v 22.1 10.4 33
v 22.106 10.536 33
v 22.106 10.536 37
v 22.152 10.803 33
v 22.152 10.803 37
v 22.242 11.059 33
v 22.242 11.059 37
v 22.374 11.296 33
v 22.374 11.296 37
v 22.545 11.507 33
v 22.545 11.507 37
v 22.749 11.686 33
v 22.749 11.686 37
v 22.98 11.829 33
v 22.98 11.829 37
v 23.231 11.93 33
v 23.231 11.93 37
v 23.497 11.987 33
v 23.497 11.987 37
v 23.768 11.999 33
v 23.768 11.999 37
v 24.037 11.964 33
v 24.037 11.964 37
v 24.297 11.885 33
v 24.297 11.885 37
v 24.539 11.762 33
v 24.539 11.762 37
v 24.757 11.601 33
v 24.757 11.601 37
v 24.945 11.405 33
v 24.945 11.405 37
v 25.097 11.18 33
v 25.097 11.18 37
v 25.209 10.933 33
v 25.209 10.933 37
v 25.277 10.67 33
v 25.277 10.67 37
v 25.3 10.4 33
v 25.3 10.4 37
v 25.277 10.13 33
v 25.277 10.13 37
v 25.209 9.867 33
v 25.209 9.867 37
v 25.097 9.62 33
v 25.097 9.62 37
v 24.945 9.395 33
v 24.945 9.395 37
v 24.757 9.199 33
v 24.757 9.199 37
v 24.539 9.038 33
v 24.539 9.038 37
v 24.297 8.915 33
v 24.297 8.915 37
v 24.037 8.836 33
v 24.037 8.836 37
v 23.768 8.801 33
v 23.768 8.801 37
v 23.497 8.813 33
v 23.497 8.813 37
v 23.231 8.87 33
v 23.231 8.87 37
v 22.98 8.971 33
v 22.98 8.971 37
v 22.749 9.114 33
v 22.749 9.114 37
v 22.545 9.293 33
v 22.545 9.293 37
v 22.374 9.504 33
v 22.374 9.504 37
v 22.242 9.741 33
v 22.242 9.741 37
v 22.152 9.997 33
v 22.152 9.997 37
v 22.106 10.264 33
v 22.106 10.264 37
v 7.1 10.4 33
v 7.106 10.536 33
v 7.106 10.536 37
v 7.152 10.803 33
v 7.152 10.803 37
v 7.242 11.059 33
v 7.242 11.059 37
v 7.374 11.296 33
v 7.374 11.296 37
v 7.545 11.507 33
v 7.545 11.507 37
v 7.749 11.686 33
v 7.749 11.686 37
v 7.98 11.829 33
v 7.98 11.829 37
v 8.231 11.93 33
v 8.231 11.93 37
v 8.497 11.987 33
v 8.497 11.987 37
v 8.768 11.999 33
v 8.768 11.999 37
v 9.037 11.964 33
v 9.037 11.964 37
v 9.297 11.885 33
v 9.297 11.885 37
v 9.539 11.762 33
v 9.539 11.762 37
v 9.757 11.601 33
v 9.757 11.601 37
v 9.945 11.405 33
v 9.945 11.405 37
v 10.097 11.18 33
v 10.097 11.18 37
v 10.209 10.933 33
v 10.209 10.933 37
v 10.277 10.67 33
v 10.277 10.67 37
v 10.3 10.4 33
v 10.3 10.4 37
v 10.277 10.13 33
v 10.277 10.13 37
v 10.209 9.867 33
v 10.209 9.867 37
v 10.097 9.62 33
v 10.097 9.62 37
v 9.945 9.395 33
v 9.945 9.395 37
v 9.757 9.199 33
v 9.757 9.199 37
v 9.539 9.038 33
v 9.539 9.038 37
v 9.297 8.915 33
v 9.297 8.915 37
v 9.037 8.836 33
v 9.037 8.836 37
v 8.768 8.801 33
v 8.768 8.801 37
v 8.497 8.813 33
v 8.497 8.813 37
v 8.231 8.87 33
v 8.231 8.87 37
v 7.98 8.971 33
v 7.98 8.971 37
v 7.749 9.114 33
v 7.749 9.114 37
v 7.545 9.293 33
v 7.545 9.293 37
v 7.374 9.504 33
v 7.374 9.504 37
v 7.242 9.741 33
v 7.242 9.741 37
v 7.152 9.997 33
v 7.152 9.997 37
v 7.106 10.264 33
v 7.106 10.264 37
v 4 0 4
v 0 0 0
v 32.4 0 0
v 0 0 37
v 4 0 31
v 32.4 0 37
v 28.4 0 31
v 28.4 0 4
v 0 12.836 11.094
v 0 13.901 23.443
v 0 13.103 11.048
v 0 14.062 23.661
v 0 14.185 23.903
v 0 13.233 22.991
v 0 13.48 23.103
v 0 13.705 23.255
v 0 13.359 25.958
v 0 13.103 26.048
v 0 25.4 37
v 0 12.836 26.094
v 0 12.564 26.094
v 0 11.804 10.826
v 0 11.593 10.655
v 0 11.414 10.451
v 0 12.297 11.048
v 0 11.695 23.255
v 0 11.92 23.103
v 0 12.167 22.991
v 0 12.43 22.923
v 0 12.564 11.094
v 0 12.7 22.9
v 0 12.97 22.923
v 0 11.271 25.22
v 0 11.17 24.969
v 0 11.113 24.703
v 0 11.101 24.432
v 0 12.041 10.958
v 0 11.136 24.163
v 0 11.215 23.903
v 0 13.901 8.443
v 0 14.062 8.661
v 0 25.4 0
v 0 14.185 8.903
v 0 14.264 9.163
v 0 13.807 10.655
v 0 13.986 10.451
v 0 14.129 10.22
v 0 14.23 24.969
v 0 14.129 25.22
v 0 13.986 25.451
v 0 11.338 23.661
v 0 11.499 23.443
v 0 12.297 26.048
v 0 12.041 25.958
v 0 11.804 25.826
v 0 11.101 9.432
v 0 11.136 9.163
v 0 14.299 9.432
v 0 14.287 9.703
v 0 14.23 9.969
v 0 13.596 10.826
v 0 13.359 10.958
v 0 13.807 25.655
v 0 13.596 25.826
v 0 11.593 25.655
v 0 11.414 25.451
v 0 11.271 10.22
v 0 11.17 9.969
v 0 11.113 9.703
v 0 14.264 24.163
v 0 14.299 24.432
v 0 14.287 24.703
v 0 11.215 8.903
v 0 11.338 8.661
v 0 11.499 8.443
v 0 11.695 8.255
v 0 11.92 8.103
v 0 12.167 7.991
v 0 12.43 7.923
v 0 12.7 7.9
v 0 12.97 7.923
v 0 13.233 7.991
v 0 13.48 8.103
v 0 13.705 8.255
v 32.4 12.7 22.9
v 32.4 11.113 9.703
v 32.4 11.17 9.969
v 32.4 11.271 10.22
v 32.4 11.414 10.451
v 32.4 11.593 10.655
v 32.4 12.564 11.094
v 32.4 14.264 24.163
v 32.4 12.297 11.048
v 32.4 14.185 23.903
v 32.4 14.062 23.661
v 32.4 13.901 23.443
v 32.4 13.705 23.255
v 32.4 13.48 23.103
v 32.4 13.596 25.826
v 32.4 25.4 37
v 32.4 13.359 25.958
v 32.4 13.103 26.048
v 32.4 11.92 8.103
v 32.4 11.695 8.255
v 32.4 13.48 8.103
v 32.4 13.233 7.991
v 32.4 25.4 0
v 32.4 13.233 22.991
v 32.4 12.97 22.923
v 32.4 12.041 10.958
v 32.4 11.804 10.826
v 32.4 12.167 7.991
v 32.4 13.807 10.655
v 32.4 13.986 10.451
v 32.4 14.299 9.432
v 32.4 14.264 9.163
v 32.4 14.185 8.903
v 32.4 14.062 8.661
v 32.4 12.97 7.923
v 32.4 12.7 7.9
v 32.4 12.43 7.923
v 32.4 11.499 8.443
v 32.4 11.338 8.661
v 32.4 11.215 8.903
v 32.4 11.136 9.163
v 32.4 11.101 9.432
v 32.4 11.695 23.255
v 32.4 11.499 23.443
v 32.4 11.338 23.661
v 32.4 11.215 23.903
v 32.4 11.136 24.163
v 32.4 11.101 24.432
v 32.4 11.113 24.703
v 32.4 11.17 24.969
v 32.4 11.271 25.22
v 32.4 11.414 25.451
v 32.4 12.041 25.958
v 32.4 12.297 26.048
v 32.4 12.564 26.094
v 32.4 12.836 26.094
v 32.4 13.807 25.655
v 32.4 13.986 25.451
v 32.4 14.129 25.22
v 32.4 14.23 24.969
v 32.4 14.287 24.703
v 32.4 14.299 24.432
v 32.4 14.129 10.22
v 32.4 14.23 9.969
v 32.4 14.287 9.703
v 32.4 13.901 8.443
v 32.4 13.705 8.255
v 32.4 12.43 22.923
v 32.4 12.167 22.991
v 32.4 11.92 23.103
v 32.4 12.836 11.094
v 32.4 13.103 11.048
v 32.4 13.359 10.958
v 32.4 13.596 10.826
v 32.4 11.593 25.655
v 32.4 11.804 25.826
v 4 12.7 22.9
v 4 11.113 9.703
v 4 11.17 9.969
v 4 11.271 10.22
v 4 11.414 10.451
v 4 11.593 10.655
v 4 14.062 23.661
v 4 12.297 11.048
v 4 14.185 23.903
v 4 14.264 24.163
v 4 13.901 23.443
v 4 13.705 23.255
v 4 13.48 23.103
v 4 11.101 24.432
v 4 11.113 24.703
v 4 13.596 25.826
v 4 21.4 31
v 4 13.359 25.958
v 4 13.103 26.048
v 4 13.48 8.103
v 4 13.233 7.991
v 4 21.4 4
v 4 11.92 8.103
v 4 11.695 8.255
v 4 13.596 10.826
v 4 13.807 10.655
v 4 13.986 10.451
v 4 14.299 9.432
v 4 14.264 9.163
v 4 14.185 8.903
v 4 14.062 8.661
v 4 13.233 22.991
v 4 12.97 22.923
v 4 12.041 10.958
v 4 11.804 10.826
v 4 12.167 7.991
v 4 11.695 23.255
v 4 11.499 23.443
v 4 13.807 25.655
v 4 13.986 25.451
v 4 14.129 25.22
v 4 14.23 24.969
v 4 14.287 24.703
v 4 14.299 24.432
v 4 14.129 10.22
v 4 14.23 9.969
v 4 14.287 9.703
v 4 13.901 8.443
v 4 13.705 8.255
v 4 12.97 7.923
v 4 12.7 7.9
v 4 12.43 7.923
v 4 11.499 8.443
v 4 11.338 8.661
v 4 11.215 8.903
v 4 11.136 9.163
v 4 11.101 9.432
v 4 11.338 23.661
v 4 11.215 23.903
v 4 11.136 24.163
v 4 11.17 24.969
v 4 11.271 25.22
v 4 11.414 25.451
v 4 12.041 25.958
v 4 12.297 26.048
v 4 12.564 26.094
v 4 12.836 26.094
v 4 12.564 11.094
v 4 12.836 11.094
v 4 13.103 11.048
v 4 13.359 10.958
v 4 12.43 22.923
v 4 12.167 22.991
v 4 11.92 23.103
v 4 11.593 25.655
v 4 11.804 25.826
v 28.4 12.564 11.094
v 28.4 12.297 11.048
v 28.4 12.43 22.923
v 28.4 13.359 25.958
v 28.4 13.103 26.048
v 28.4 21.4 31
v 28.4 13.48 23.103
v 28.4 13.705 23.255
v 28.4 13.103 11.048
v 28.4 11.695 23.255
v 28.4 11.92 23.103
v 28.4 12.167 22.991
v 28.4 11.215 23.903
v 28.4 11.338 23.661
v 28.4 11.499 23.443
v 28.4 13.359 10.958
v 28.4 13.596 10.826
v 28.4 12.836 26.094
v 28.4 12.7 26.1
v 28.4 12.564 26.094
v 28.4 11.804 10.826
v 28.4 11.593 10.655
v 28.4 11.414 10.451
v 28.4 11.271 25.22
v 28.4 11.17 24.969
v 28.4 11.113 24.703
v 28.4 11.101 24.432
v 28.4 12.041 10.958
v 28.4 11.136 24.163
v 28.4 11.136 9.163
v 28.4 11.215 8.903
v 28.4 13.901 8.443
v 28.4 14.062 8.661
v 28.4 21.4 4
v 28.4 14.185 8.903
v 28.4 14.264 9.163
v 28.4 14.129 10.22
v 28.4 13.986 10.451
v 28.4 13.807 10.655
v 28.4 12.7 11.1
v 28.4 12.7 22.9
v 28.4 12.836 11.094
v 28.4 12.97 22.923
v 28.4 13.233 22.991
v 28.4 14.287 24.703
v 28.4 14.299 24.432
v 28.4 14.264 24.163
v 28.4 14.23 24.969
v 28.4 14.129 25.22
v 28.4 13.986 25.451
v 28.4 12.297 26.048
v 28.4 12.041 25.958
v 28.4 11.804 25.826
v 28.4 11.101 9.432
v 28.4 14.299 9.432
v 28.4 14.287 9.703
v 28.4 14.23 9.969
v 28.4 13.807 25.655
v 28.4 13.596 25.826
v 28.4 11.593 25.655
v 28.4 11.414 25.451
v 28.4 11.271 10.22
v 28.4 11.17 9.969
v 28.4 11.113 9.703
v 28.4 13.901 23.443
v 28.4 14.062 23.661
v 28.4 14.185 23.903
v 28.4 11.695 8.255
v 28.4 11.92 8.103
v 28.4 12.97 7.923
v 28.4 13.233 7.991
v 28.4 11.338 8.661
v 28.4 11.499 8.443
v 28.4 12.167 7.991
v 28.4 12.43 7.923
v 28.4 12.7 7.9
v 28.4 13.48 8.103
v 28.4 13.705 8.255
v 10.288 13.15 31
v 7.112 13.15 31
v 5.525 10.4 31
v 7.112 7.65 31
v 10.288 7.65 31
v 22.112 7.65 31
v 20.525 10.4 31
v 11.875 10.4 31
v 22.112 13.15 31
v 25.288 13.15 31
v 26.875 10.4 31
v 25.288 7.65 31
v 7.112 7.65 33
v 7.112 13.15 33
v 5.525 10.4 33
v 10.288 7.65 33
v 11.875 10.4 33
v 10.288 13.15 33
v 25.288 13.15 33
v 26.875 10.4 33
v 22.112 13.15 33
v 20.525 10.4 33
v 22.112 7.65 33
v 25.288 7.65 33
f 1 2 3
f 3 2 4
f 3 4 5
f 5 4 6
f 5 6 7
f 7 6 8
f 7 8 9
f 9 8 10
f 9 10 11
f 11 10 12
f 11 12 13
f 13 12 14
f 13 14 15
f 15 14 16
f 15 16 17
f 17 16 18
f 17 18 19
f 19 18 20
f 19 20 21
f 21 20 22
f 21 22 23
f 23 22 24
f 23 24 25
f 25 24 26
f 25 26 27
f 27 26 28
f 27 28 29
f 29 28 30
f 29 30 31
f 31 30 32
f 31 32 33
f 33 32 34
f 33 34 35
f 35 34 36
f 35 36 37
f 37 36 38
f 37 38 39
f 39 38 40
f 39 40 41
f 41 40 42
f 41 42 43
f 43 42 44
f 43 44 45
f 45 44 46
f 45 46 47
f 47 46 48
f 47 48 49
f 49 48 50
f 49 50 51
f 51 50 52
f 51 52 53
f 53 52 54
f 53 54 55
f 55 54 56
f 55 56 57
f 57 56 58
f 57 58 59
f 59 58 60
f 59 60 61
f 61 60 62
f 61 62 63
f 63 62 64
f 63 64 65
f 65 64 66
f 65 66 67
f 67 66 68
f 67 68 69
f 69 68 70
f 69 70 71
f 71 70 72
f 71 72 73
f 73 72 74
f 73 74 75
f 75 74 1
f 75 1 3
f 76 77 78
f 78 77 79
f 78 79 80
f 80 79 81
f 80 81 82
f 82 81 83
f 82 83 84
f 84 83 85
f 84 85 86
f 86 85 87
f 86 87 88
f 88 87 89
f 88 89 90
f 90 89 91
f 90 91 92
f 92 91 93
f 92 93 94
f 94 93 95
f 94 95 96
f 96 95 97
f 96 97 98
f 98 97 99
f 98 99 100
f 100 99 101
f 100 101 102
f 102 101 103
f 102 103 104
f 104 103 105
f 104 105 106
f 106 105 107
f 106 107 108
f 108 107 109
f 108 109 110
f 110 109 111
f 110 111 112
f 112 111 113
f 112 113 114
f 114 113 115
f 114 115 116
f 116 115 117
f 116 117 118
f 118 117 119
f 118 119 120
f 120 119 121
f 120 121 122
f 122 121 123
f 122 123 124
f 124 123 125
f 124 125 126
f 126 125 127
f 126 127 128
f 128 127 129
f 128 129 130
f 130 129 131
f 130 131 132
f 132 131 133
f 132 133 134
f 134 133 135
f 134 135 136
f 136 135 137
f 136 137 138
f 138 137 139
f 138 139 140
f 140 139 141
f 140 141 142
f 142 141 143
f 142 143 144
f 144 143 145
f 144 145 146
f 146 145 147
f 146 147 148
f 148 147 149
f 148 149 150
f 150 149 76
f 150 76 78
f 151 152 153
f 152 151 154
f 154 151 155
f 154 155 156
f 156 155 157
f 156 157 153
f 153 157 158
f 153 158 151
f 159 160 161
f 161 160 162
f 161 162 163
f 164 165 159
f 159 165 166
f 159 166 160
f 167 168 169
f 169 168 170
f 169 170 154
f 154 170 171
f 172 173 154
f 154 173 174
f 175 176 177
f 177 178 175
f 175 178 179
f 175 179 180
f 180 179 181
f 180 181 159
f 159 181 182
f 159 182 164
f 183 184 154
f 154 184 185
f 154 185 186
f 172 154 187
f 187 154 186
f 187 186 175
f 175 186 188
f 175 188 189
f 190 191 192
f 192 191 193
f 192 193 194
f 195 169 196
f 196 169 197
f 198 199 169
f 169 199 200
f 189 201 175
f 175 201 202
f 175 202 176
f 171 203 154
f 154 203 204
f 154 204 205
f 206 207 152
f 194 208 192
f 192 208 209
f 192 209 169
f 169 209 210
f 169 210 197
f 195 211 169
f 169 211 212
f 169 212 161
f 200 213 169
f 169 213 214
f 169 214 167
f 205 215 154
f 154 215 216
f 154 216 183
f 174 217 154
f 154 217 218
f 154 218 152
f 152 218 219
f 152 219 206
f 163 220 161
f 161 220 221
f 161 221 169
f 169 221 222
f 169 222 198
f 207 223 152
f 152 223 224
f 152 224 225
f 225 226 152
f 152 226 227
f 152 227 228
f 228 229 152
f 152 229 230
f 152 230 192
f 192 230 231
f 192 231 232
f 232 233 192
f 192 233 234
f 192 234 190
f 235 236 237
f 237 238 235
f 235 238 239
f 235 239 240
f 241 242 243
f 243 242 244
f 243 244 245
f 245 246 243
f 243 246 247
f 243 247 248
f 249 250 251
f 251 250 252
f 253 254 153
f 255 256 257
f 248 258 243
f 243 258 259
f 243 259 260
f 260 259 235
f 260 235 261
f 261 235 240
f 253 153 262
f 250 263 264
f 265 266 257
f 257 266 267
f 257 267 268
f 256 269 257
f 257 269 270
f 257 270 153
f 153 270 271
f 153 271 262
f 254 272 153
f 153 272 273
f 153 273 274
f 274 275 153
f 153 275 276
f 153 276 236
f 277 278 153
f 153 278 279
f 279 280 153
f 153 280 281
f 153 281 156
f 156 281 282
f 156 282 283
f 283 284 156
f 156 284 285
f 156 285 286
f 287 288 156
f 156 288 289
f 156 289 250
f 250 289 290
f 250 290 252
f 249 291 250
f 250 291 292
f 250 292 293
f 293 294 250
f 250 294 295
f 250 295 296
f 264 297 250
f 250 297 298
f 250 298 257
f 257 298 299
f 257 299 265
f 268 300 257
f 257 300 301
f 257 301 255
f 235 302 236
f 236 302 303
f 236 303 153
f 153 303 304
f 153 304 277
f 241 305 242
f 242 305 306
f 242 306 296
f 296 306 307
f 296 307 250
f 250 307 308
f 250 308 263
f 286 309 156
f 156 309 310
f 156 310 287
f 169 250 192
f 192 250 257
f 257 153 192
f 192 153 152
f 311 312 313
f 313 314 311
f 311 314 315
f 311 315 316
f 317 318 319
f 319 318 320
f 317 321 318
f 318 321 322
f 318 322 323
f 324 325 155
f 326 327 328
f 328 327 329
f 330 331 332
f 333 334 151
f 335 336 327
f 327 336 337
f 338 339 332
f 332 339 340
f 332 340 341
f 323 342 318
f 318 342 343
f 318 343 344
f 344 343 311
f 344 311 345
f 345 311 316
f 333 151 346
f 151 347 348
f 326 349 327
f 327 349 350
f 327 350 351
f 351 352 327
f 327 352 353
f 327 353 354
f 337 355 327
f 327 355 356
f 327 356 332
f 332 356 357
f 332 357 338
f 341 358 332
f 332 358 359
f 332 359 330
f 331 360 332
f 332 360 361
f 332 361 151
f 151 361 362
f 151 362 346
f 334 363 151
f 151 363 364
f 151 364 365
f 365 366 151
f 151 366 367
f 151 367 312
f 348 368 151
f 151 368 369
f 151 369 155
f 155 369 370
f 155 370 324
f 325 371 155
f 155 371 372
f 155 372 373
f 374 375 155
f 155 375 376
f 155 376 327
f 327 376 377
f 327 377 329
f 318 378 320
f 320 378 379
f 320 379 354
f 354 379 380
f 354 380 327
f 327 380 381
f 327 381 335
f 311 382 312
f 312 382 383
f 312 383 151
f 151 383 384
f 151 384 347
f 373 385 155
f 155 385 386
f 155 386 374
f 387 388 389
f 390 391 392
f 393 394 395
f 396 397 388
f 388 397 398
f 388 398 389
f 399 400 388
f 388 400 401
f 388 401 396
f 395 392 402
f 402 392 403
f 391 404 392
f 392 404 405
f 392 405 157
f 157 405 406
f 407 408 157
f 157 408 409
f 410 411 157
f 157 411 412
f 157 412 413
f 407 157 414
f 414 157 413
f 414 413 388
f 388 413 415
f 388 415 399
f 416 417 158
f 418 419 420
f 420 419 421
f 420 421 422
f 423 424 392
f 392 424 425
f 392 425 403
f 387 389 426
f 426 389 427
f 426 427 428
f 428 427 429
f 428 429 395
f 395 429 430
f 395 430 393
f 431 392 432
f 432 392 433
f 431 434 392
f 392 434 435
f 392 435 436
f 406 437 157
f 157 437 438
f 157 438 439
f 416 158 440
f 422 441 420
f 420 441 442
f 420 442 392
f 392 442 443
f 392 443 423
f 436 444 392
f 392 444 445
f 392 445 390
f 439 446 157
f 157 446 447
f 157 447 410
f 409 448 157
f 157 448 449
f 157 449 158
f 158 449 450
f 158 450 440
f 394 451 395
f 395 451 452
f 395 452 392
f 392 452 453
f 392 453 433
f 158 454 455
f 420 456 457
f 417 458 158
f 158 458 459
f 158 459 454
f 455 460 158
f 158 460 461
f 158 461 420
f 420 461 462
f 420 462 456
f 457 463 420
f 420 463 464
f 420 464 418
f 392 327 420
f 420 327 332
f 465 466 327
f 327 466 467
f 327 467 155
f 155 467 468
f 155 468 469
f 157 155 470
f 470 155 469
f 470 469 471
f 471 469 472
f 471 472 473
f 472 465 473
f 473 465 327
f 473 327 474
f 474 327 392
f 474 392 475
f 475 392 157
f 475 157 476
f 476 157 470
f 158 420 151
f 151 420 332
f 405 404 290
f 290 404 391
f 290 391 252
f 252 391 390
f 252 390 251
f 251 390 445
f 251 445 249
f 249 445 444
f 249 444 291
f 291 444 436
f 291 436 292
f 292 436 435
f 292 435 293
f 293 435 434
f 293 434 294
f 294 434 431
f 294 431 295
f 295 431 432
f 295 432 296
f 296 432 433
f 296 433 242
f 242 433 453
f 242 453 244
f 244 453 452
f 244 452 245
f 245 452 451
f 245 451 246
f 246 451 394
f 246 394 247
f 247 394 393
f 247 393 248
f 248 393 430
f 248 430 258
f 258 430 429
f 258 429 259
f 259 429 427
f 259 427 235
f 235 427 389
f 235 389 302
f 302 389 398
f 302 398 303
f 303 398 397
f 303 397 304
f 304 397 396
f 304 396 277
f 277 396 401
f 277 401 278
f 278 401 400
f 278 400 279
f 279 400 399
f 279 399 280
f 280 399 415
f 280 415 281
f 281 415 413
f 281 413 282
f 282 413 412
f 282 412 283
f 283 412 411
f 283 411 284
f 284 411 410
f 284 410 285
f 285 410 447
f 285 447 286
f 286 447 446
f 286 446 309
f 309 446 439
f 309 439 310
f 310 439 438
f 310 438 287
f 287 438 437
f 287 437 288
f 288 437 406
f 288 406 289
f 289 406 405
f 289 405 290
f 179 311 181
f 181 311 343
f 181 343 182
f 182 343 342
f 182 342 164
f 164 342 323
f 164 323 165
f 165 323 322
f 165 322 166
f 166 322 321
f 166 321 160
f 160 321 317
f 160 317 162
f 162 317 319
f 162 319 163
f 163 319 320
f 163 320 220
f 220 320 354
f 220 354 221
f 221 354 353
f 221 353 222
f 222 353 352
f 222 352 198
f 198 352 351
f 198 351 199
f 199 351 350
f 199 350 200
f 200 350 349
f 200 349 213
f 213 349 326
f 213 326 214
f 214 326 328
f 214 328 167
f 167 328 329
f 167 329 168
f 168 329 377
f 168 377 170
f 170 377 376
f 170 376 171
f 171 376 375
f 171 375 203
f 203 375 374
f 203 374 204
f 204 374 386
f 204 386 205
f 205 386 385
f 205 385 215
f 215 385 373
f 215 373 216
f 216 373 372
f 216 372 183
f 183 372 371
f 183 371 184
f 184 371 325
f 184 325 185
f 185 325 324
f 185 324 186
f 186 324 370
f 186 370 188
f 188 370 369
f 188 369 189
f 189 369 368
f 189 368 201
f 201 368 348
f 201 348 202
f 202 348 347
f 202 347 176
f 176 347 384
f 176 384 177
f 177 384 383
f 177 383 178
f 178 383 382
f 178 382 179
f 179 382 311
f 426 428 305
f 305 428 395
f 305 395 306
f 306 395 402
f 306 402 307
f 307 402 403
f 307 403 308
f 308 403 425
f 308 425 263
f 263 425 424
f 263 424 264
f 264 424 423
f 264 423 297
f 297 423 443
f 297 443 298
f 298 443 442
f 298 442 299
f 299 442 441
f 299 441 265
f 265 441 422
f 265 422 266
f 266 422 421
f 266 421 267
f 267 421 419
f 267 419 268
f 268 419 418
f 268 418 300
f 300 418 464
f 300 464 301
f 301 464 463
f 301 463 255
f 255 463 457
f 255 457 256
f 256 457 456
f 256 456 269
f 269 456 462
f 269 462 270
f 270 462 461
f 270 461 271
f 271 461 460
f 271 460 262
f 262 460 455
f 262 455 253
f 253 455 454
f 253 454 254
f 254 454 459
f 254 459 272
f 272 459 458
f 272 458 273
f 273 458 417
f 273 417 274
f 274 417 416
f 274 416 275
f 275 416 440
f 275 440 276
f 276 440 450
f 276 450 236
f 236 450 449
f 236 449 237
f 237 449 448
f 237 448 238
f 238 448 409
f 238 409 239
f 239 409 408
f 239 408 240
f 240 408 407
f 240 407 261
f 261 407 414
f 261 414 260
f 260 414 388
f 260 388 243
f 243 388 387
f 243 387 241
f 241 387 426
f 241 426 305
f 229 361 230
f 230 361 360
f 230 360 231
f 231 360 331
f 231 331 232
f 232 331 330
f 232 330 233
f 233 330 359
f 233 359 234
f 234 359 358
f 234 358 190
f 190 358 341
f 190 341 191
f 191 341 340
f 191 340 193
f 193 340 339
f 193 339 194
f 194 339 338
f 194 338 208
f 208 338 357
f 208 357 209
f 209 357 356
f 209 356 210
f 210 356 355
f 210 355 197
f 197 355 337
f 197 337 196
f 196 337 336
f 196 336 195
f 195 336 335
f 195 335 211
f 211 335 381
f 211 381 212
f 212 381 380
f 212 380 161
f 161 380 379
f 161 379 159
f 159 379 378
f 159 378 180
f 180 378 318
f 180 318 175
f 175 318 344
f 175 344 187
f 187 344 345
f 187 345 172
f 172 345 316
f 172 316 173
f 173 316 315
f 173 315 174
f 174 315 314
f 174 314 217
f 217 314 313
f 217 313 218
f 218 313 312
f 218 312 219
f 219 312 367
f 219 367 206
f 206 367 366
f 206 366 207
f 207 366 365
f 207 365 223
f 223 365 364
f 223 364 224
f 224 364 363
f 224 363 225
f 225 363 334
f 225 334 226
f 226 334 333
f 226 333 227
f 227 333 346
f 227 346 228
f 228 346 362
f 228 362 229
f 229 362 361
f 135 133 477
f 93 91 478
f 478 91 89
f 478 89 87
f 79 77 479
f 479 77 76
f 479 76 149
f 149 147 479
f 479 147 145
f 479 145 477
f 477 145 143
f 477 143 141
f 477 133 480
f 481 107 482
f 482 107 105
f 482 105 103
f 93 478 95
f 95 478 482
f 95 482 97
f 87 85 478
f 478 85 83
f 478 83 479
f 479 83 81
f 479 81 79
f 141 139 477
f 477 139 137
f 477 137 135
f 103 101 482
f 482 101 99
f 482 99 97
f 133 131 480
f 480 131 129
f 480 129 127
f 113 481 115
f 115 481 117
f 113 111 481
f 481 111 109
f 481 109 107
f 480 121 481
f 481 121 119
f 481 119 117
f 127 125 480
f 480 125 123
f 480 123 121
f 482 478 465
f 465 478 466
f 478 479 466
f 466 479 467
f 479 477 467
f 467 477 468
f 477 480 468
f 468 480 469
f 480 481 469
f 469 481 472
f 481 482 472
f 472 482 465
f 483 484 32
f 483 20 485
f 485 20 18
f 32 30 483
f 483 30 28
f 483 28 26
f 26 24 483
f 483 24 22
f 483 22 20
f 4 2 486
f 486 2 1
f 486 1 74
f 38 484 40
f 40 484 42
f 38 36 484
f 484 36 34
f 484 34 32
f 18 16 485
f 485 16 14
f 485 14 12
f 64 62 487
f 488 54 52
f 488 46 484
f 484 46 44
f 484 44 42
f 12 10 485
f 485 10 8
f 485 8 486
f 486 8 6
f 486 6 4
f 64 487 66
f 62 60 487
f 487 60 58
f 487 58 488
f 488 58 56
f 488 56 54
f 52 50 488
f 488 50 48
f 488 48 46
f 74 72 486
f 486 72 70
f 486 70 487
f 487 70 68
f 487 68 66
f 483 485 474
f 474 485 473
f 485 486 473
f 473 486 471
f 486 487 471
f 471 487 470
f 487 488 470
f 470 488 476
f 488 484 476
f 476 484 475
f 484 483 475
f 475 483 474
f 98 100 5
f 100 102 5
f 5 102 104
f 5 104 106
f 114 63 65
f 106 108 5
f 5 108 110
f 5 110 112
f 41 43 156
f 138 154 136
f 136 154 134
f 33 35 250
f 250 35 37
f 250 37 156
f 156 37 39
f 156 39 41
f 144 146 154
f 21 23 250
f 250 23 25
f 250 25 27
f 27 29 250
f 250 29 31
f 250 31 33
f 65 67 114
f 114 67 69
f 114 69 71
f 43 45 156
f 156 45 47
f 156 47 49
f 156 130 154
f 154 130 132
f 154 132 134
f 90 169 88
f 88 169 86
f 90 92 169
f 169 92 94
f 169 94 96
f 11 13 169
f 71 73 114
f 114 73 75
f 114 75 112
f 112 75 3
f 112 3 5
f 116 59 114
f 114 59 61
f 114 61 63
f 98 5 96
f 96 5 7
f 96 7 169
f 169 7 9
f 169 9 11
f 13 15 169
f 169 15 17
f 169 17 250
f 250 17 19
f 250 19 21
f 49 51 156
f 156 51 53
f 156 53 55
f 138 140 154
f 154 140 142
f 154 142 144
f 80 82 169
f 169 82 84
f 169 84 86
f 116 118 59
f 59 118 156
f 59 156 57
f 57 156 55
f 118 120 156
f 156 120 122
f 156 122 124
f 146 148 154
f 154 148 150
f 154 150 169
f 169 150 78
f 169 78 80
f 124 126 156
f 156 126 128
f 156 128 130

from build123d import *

# Parameters (mm, degrees)
SKETCH1_W           = 32.4
SKETCH1_H           = 25.4
BOSS_EXTRUDE1_DEPTH = 35
SHELL1_T            = -4
SKETCH2_R           = 1.6
CUT_EXTRUDE1_DEPTH  = 55.036284106
CUT_EXTRUDE2_REACH  = 56.036
SKETCH3_R           = 1.6
CUT_EXTRUDE3_DEPTH  = 2
BOSS_EXTRUDE2_START = 2
SKETCH7_W           = 32.4
SKETCH7_H           = 25.4
SKETCH7_R           = 1.6
BOSS_EXTRUDE2_DEPTH = 2


with BuildPart() as part:
    # Sketch1 → Boss-Extrude1 (new body)
    with BuildSketch(Plane.XY):
        with Locations((16.2, 12.7)):
            Rectangle(SKETCH1_W, SKETCH1_H)
    extrude(amount=BOSS_EXTRUDE1_DEPTH)

    # Shell1
    shell1_openings = [part.faces().sort_by_distance(p)[0] for p in [
        (16.2, 0, 17.5),
    ]]
    offset(amount=SHELL1_T, openings=shell1_openings, kind=Kind.INTERSECTION)

    # Sketch2 → Cut-Extrude1 (cut, through all)
    with BuildSketch(Plane(origin=(32.4, 0, 0), x_dir=(0, 0, -1), z_dir=(1, 0, 0))):
        with Locations((-24.5, 12.7)):
            Circle(SKETCH2_R)
        with Locations((-9.5, 12.7)):
            Circle(SKETCH2_R)
    extrude(amount=-CUT_EXTRUDE1_DEPTH, mode=Mode.SUBTRACT)

    # Sketch3 → Cut-Extrude2 (cut, up to next)
    with BuildSketch(Plane.XY.offset(35), mode=Mode.PRIVATE) as cut_extrude2_sk1:
        with Locations((8.7, 10.4)):
            Circle(SKETCH3_R)
    cut_extrude2_tool1 = extrude(cut_extrude2_sk1.sketch, amount=-CUT_EXTRUDE2_REACH, mode=Mode.PRIVATE) & part.part
    # Sketch3 → Cut-Extrude2 (cut, up to next)
    with BuildSketch(Plane.XY.offset(35), mode=Mode.PRIVATE) as cut_extrude2_sk2:
        with Locations((23.7, 10.4)):
            Circle(SKETCH3_R)
    cut_extrude2_tool2 = extrude(cut_extrude2_sk2.sketch, amount=-CUT_EXTRUDE2_REACH, mode=Mode.PRIVATE) & part.part
    add(cut_extrude2_tool1.solids().sort_by_distance((8.7, 10.4, 35))[0], mode=Mode.SUBTRACT)
    add(cut_extrude2_tool2.solids().sort_by_distance((23.7, 10.4, 35))[0], mode=Mode.SUBTRACT)

    # Sketch4 → Cut-Extrude3 (cut)
    with BuildSketch(Plane(origin=(0, 0, 31), x_dir=(-1, 0, 0), z_dir=(0, 0, -1))):
        Polygon((-10.28771324, 13.15), (-11.875426481, 10.4), (-10.28771324, 7.65), (-7.11228676, 7.65), (-5.524573519, 10.4), (-7.11228676, 13.15), align=None)
        Polygon((-25.28771324, 13.15), (-26.875426481, 10.4), (-25.28771324, 7.65), (-22.11228676, 7.65), (-20.524573519, 10.4), (-22.11228676, 13.15), align=None)
    extrude(amount=-CUT_EXTRUDE3_DEPTH, mode=Mode.SUBTRACT)

    # Sketch7 → Boss-Extrude2 (add)
    with BuildSketch(Plane.XY.offset(35).offset(BOSS_EXTRUDE2_START)):
        with Locations((16.2, 12.7)):
            Rectangle(SKETCH7_W, SKETCH7_H)
        with Locations((8.7, 10.4)):
            Circle(SKETCH7_R, mode=Mode.SUBTRACT)
        with Locations((23.7, 10.4)):
            Circle(SKETCH7_R, mode=Mode.SUBTRACT)
    extrude(amount=-BOSS_EXTRUDE2_DEPTH)


solid = part.part
